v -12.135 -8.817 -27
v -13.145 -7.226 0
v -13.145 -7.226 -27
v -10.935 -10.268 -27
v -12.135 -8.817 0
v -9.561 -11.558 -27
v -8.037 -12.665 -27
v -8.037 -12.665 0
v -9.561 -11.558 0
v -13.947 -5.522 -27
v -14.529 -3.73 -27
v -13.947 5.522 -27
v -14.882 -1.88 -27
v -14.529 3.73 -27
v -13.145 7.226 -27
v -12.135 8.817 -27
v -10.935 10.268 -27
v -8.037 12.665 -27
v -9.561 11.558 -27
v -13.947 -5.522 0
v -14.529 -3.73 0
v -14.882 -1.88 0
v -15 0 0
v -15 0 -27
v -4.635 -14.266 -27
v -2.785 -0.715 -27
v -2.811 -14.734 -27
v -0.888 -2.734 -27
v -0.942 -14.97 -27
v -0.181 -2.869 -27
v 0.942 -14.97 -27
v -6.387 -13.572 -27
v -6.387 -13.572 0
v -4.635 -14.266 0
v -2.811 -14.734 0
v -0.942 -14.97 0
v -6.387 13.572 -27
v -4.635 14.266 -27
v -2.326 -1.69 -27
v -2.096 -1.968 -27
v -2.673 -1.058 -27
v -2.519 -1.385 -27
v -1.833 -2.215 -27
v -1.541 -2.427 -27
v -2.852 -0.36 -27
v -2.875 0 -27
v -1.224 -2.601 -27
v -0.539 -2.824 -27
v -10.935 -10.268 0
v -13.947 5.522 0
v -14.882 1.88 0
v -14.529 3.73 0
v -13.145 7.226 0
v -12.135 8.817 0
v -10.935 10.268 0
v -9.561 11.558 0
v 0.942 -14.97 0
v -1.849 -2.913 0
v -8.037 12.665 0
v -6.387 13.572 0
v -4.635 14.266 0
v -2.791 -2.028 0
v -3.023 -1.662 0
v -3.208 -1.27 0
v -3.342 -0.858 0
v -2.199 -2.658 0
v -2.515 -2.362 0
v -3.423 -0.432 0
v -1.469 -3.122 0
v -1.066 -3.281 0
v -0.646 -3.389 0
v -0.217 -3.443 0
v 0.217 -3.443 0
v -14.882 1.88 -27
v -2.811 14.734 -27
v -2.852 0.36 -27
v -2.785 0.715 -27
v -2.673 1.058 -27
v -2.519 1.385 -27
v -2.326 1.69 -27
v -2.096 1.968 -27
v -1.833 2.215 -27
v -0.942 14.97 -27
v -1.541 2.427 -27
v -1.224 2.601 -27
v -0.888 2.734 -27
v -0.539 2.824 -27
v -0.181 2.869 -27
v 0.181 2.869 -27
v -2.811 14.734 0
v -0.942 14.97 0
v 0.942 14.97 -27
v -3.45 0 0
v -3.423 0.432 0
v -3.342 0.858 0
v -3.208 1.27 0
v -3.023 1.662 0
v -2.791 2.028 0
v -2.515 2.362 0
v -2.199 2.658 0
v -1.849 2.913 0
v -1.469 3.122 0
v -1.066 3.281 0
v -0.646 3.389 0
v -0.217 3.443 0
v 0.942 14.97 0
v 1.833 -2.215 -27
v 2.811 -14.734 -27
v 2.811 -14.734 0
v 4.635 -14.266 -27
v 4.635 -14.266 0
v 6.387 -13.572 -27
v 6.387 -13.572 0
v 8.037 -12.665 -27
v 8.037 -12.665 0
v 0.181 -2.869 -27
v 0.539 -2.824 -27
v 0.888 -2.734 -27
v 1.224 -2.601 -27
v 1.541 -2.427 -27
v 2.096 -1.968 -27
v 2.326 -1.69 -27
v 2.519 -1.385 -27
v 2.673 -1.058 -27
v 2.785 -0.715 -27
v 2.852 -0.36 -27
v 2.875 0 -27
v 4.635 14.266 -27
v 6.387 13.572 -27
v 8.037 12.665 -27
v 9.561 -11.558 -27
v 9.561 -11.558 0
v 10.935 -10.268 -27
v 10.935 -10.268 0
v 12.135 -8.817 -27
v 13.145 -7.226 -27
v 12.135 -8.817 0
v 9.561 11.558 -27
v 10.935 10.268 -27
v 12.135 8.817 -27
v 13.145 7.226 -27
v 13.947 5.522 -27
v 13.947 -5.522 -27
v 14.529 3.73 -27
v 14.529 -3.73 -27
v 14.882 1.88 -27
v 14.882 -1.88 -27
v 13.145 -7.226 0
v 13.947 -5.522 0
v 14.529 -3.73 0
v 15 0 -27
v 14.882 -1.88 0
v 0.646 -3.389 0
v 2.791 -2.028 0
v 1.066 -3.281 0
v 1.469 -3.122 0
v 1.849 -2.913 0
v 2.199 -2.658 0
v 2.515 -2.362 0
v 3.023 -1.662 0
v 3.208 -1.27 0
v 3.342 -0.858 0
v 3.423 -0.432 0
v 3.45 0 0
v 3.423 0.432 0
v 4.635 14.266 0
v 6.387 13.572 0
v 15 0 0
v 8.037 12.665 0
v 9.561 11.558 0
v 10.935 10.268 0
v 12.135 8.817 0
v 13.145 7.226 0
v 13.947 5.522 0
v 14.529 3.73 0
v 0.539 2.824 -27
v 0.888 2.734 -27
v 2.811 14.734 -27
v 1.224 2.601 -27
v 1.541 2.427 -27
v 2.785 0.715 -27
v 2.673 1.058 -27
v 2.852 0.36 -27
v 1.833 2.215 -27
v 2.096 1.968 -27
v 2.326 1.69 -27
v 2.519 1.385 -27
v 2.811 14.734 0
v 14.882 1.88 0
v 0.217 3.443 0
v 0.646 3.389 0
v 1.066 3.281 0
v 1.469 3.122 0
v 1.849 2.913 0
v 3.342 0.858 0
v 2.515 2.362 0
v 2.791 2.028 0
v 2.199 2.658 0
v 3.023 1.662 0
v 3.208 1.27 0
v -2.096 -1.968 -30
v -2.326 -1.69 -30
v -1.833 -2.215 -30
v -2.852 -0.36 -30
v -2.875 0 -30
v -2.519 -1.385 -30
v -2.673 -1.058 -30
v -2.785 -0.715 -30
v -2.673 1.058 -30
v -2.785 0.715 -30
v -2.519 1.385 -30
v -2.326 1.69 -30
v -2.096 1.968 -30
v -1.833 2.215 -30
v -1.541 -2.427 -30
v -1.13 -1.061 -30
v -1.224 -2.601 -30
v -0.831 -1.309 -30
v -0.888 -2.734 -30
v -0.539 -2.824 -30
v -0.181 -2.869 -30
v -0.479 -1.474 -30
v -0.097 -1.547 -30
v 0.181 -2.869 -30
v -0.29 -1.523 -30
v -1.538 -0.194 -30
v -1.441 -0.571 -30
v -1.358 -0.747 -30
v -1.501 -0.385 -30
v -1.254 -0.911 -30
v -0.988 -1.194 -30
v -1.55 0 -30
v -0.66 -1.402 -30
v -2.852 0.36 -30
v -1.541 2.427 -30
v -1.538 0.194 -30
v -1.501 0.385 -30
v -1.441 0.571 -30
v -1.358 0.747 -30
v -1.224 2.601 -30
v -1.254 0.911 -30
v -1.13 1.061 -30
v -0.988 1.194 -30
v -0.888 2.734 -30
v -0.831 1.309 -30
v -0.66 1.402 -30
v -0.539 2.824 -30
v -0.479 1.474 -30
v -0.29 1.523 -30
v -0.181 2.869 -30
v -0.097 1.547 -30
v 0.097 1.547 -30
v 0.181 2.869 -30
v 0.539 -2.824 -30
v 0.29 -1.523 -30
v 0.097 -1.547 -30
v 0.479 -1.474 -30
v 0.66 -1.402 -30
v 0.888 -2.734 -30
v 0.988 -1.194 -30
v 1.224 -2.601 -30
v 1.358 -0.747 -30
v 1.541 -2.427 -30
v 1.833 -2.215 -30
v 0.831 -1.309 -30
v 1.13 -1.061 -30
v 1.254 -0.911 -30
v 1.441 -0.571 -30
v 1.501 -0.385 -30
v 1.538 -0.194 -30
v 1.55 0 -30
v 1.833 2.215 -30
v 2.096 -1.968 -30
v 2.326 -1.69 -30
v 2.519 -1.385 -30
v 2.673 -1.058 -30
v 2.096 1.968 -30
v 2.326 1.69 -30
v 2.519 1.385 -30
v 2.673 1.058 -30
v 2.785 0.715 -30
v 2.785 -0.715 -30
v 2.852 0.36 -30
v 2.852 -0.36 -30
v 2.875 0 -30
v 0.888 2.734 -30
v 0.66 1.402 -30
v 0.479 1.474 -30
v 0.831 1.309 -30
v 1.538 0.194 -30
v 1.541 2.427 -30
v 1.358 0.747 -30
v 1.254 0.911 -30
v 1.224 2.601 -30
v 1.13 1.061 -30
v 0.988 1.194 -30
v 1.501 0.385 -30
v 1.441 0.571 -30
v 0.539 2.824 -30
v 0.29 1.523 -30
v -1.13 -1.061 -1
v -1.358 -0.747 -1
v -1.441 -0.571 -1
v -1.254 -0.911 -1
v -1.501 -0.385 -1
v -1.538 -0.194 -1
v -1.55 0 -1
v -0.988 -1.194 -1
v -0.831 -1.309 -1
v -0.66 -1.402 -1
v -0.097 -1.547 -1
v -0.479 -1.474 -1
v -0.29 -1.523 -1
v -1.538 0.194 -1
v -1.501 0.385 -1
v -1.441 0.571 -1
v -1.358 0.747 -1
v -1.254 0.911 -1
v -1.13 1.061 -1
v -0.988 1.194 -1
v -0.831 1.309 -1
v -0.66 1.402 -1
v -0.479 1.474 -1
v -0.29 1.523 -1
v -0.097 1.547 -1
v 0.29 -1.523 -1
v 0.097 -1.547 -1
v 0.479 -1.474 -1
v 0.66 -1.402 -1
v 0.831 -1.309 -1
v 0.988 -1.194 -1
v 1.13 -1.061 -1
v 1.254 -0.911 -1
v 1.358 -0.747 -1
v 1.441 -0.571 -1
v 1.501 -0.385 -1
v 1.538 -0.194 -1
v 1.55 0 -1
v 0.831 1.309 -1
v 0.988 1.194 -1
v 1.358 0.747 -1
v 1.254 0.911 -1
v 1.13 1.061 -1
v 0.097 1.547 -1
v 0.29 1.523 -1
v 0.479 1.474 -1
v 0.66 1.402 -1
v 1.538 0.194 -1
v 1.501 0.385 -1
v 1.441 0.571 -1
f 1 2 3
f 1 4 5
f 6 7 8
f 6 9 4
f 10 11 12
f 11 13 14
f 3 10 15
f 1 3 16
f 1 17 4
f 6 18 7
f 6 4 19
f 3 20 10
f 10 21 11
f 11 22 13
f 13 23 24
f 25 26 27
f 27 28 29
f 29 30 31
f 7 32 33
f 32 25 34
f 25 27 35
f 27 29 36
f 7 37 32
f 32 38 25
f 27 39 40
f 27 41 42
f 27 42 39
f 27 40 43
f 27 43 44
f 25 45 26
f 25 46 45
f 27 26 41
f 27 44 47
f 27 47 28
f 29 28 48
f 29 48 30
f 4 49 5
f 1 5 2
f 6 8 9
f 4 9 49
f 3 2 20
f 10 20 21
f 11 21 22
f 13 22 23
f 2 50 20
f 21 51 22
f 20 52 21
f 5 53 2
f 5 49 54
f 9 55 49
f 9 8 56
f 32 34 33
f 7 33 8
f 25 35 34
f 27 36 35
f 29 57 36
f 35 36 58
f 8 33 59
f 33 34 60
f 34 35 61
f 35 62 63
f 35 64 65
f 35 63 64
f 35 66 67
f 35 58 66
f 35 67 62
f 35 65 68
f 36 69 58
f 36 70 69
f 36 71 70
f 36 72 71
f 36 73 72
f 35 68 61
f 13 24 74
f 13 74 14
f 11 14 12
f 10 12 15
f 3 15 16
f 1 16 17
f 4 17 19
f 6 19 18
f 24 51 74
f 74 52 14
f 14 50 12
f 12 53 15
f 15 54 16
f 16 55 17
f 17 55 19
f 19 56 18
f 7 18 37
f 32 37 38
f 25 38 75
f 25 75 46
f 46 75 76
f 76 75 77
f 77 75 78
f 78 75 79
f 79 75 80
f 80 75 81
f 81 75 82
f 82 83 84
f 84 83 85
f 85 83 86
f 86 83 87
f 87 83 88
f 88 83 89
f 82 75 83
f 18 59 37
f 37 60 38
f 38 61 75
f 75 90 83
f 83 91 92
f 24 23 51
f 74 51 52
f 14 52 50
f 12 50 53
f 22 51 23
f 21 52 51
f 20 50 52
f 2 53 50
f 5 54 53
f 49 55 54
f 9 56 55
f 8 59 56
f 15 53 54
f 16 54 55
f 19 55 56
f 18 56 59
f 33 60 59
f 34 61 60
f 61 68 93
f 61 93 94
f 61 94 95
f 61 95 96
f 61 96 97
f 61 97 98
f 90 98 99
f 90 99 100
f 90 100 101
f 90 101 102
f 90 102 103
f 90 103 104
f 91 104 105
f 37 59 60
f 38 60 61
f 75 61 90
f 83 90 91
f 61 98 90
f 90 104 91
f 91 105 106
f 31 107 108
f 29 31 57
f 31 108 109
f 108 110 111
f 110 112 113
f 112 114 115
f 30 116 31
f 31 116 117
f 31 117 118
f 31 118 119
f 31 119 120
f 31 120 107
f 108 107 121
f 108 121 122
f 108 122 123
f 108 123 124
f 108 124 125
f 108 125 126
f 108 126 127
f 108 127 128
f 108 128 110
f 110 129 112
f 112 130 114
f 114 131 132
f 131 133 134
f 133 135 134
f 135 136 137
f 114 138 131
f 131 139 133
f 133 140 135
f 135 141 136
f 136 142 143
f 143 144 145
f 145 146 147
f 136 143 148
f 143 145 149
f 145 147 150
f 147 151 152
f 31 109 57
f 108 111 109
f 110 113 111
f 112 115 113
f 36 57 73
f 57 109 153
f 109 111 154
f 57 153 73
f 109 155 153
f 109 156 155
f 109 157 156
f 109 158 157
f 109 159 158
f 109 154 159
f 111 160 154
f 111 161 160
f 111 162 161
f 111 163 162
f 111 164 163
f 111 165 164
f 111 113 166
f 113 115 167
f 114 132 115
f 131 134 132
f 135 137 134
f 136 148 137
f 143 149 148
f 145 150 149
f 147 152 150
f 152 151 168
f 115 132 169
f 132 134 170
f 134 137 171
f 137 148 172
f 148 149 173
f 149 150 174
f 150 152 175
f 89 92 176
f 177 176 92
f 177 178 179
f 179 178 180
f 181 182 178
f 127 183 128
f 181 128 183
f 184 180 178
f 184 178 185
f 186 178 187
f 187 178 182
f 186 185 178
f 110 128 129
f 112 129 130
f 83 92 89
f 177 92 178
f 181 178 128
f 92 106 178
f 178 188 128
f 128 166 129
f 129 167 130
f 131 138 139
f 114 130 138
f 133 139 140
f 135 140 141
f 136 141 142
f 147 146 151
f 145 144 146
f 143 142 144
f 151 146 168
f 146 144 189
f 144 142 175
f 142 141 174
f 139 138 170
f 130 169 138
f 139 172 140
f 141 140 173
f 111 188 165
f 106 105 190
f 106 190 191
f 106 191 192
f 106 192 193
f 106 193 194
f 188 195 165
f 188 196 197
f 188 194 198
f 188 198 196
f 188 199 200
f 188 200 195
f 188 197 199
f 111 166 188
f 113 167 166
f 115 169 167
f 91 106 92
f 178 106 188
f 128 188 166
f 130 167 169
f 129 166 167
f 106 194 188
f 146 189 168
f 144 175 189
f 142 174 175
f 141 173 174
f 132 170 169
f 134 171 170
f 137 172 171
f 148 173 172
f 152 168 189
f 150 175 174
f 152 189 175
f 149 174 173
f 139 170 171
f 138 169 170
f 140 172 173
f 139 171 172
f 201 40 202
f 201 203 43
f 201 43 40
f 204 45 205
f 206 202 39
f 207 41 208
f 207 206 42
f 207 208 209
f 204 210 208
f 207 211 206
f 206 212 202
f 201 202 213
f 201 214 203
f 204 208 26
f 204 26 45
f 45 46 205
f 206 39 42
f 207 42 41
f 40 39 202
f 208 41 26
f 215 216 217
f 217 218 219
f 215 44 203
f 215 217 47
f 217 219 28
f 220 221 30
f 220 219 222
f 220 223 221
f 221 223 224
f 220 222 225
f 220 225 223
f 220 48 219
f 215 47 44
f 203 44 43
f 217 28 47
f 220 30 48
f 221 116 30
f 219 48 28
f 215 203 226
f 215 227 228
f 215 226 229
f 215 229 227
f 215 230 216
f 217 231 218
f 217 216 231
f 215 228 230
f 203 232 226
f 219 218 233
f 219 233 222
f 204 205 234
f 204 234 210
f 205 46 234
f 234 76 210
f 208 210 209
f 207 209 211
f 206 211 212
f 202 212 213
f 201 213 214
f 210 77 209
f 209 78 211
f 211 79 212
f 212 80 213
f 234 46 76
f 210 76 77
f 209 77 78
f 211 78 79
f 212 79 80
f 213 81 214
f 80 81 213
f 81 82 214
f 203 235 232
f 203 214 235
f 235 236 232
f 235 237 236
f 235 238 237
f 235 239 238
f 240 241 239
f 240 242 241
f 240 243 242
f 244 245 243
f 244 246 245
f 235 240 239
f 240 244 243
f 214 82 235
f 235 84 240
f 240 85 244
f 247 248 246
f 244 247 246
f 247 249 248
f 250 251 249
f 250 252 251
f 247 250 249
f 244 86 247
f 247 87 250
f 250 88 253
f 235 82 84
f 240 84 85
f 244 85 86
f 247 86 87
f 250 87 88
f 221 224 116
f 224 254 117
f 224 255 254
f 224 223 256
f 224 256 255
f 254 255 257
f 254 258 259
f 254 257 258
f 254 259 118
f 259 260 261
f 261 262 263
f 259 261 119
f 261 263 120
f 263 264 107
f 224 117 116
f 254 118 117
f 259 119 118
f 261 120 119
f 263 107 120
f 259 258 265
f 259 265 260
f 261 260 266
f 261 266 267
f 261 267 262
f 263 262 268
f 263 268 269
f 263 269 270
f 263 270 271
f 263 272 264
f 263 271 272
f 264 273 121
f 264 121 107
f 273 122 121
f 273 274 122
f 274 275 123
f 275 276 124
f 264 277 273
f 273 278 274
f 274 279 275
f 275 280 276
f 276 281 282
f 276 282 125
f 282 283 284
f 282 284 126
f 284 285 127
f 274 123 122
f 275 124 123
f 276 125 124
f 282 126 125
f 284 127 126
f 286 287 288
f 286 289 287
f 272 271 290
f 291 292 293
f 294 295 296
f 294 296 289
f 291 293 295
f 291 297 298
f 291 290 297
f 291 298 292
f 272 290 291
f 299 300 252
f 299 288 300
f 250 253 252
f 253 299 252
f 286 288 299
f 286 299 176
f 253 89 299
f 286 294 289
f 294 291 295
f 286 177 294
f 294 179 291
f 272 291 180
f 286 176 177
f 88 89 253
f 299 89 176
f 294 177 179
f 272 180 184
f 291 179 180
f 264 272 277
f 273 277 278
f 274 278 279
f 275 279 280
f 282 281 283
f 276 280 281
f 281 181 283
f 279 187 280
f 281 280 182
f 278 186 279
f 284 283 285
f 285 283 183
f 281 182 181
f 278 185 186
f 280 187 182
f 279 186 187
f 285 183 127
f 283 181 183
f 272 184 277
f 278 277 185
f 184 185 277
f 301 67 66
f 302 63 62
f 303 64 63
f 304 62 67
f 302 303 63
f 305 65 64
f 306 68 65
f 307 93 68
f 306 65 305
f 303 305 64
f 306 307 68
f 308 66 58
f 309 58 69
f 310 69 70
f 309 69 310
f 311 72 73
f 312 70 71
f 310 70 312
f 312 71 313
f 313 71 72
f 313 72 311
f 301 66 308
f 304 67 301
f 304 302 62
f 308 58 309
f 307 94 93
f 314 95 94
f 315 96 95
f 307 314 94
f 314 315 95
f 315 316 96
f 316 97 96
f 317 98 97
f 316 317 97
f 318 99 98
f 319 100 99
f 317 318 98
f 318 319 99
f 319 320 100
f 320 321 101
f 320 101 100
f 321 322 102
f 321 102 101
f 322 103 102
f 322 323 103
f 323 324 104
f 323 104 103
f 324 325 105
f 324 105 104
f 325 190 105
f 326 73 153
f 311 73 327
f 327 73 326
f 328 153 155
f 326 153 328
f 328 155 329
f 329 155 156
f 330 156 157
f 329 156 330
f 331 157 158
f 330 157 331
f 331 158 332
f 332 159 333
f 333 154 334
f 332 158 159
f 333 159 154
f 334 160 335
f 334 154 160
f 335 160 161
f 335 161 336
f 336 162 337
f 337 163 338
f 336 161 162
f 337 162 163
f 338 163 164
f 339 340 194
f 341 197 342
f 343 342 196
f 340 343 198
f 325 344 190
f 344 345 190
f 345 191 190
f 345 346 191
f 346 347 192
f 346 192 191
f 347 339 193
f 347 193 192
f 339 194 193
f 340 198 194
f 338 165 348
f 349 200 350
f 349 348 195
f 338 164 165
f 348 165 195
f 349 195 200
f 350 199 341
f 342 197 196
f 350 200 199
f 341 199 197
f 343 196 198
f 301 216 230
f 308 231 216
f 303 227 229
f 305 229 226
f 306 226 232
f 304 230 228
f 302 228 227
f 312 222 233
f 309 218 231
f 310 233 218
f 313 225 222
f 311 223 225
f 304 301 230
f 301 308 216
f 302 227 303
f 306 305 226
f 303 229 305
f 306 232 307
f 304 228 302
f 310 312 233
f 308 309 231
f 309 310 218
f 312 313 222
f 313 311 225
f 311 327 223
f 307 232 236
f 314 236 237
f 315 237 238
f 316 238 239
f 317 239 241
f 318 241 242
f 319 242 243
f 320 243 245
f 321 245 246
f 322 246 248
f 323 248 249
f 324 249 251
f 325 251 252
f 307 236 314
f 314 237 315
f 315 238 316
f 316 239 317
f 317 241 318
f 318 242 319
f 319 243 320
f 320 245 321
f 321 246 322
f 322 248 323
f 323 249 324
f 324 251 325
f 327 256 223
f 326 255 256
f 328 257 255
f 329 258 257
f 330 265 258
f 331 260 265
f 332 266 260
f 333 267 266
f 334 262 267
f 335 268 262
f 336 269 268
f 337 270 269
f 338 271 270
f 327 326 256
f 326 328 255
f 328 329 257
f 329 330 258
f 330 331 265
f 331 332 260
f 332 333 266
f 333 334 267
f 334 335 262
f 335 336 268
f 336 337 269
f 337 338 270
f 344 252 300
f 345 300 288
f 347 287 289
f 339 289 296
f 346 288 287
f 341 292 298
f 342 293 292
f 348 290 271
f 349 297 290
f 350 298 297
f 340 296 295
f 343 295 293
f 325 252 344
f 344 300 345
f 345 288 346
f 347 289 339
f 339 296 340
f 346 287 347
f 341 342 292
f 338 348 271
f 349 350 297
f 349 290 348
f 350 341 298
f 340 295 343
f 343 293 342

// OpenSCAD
$fn = 50;

difference() {
	union() {
		translate(v = [0, 0, -27.0]) {
			cylinder(h = 27, r = 15.0);
		}
		#translate(v = [0, 0, -30.0]) {
			cylinder(h = 30, r = 2.875);
		}
	}
	union() {
		translate(v = [0, 0, 0]) {
			rotate(a = [0, 0, 0]) {
				difference() {
					union() {
						translate(v = [0, 0, -30.0]) {
							cylinder(h = 30, r = 1.25);
						}
						translate(v = [0, 0, -1.0]) {
							cylinder(h = 1.0, r1 = 1.55, r2 = 3.45);
						}
						translate(v = [0, 0, -30.0]) {
							cylinder(h = 30, r = 1.55);
						}
						translate(v = [0, 0, -30.0]) {
							cylinder(h = 30, r = 1.25);
						}
					}
					union();
				}
			}
		}
	}
}
